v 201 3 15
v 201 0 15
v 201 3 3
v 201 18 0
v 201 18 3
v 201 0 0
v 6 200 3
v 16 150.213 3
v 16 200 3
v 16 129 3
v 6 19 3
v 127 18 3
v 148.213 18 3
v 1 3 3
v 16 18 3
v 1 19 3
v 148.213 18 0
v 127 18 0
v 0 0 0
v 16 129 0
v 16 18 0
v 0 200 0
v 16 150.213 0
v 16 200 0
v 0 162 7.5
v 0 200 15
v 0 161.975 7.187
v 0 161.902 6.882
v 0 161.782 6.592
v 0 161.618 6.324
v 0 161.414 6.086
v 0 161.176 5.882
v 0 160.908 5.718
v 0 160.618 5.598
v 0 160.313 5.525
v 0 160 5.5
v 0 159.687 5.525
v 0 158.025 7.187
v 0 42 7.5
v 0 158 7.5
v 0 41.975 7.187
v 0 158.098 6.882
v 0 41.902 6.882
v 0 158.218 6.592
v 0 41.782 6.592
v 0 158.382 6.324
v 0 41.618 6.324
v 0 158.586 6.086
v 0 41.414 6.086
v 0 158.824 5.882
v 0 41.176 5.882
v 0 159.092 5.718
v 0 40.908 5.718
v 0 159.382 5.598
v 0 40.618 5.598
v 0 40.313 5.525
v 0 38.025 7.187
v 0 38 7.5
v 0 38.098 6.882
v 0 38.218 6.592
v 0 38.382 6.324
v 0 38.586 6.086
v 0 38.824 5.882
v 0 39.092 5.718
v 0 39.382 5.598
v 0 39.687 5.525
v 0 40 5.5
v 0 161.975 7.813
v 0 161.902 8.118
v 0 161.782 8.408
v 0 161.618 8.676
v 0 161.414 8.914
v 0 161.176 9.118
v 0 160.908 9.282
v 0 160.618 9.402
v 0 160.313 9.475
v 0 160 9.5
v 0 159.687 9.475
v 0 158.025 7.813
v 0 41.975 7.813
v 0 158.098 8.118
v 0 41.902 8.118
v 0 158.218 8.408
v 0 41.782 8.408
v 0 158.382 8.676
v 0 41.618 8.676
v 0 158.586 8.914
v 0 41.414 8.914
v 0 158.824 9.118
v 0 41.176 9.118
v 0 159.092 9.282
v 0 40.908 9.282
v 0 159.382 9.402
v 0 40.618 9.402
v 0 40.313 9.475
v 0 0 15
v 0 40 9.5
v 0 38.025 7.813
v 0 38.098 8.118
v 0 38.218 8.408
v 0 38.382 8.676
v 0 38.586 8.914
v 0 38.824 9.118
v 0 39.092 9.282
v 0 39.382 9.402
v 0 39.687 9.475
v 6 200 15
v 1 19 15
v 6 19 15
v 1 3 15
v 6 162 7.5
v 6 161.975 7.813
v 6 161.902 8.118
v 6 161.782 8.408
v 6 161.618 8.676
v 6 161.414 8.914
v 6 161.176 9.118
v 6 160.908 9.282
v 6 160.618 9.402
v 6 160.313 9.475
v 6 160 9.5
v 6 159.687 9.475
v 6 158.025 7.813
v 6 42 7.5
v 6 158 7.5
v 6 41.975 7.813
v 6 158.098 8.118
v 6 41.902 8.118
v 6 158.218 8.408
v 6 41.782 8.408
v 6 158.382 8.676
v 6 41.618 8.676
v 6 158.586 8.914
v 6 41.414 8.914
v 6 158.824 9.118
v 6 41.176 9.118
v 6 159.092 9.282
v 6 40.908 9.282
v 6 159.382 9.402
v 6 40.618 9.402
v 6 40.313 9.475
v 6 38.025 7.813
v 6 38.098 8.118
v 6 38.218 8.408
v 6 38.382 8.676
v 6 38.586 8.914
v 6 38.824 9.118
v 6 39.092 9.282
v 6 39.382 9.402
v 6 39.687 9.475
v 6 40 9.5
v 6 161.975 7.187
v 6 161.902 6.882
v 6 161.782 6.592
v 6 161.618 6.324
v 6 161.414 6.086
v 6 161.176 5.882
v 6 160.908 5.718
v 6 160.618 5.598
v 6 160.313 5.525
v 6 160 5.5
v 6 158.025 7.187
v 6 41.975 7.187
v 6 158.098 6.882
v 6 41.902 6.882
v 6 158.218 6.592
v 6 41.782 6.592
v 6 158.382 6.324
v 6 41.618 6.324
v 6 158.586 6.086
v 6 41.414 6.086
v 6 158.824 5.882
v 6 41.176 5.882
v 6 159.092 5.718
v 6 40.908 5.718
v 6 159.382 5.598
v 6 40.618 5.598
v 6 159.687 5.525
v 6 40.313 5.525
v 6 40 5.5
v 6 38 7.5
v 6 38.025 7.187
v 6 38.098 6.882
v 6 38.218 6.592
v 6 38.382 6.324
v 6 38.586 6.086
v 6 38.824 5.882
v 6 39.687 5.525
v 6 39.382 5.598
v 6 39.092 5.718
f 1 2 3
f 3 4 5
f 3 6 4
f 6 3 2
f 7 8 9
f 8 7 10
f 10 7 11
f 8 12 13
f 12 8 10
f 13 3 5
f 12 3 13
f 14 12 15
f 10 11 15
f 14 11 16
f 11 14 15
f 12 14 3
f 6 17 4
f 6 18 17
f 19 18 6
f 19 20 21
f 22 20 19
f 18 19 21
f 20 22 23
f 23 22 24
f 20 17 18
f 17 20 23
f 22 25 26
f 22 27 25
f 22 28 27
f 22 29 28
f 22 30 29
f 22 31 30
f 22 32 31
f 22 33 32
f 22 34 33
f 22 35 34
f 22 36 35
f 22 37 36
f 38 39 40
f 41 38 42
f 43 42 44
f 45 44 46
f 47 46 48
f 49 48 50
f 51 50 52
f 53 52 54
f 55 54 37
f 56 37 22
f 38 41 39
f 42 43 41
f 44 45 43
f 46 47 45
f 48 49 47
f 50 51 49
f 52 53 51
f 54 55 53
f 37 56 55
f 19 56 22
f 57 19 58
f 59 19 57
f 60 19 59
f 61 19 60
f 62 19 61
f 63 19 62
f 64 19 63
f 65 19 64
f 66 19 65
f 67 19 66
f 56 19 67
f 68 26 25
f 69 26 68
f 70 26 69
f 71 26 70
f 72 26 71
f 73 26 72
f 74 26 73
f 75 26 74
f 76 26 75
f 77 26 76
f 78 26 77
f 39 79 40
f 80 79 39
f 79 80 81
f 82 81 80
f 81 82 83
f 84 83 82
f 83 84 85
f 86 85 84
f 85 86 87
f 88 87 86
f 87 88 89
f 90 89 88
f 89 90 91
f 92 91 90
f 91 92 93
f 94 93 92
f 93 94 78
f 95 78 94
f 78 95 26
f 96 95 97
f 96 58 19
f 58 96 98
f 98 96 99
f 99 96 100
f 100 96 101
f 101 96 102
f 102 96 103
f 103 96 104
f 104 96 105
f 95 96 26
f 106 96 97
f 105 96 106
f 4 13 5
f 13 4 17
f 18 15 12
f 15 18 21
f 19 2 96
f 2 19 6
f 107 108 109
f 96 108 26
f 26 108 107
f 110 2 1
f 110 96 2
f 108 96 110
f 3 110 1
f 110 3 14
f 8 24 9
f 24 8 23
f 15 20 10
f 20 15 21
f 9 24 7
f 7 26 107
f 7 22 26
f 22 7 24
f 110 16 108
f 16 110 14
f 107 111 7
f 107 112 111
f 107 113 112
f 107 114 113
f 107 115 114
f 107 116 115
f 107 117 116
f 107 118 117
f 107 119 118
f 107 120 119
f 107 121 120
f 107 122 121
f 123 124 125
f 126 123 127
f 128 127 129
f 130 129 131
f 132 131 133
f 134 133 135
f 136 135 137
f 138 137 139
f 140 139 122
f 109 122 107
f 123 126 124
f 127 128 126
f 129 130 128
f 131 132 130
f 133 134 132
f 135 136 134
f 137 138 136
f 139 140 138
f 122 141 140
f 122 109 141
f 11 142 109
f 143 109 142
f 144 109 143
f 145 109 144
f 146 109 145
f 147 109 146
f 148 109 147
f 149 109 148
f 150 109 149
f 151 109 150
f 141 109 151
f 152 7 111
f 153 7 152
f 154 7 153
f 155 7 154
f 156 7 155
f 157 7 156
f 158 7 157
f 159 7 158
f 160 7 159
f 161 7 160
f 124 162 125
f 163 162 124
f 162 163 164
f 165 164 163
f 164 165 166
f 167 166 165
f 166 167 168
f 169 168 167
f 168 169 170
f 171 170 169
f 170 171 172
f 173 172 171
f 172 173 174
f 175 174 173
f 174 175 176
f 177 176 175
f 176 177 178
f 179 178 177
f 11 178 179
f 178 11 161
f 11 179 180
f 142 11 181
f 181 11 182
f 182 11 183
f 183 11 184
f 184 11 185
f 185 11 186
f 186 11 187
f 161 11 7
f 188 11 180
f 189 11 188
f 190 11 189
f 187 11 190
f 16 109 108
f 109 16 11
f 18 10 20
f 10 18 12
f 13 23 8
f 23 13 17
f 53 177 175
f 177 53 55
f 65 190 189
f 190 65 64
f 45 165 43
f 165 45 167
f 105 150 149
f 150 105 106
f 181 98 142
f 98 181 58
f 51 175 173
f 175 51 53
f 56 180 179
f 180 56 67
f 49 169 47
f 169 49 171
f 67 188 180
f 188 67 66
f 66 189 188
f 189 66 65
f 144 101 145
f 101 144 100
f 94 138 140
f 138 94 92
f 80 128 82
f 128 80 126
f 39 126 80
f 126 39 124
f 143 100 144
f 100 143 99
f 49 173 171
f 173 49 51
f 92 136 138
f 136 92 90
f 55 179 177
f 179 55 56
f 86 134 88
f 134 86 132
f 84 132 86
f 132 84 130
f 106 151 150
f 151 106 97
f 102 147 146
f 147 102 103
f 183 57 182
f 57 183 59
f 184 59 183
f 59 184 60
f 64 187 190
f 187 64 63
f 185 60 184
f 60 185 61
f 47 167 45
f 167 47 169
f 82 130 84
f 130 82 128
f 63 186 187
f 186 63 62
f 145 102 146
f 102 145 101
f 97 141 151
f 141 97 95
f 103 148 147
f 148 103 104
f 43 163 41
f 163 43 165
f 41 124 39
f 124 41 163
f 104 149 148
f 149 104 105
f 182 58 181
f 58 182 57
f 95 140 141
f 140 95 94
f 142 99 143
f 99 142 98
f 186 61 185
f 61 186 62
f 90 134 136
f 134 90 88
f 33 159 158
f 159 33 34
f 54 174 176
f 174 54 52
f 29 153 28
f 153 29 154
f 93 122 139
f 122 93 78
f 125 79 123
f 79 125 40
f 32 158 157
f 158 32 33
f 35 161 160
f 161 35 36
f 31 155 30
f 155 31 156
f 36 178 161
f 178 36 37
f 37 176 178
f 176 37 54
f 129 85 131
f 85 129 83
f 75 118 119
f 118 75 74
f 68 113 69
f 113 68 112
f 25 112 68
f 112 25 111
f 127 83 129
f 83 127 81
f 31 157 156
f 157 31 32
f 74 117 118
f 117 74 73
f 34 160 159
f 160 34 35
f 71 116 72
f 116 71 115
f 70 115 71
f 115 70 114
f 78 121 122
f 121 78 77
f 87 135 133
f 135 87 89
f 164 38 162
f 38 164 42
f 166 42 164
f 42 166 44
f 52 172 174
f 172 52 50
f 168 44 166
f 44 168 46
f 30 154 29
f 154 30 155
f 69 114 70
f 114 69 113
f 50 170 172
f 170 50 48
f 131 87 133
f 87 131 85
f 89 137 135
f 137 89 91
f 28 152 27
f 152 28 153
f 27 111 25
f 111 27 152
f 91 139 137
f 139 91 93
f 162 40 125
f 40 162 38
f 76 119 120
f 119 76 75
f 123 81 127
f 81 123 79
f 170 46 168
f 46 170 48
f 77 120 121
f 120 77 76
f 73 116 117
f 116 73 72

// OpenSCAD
difference() {
  union() {
    cube([201, 18, 3]);
    cube([201, 3, 15]);
    cube([16, 200, 3]);
    cube([1, 200, 15]);
    translate([0, 19, 0])
      cube([6, 181, 15]);
    translate([145, 0, 0])
      rotate([0, 0, 45])
      cube([15, 200, 3]);
  }
  translate([-40, 40, 7.5])
    rotate([0, 90, 0])
    cylinder(100, d=4, $fn=40);
  translate([-40, 160, 7.5])
    rotate([0, 90, 0])
    cylinder(100, d=4, $fn=40);
}
